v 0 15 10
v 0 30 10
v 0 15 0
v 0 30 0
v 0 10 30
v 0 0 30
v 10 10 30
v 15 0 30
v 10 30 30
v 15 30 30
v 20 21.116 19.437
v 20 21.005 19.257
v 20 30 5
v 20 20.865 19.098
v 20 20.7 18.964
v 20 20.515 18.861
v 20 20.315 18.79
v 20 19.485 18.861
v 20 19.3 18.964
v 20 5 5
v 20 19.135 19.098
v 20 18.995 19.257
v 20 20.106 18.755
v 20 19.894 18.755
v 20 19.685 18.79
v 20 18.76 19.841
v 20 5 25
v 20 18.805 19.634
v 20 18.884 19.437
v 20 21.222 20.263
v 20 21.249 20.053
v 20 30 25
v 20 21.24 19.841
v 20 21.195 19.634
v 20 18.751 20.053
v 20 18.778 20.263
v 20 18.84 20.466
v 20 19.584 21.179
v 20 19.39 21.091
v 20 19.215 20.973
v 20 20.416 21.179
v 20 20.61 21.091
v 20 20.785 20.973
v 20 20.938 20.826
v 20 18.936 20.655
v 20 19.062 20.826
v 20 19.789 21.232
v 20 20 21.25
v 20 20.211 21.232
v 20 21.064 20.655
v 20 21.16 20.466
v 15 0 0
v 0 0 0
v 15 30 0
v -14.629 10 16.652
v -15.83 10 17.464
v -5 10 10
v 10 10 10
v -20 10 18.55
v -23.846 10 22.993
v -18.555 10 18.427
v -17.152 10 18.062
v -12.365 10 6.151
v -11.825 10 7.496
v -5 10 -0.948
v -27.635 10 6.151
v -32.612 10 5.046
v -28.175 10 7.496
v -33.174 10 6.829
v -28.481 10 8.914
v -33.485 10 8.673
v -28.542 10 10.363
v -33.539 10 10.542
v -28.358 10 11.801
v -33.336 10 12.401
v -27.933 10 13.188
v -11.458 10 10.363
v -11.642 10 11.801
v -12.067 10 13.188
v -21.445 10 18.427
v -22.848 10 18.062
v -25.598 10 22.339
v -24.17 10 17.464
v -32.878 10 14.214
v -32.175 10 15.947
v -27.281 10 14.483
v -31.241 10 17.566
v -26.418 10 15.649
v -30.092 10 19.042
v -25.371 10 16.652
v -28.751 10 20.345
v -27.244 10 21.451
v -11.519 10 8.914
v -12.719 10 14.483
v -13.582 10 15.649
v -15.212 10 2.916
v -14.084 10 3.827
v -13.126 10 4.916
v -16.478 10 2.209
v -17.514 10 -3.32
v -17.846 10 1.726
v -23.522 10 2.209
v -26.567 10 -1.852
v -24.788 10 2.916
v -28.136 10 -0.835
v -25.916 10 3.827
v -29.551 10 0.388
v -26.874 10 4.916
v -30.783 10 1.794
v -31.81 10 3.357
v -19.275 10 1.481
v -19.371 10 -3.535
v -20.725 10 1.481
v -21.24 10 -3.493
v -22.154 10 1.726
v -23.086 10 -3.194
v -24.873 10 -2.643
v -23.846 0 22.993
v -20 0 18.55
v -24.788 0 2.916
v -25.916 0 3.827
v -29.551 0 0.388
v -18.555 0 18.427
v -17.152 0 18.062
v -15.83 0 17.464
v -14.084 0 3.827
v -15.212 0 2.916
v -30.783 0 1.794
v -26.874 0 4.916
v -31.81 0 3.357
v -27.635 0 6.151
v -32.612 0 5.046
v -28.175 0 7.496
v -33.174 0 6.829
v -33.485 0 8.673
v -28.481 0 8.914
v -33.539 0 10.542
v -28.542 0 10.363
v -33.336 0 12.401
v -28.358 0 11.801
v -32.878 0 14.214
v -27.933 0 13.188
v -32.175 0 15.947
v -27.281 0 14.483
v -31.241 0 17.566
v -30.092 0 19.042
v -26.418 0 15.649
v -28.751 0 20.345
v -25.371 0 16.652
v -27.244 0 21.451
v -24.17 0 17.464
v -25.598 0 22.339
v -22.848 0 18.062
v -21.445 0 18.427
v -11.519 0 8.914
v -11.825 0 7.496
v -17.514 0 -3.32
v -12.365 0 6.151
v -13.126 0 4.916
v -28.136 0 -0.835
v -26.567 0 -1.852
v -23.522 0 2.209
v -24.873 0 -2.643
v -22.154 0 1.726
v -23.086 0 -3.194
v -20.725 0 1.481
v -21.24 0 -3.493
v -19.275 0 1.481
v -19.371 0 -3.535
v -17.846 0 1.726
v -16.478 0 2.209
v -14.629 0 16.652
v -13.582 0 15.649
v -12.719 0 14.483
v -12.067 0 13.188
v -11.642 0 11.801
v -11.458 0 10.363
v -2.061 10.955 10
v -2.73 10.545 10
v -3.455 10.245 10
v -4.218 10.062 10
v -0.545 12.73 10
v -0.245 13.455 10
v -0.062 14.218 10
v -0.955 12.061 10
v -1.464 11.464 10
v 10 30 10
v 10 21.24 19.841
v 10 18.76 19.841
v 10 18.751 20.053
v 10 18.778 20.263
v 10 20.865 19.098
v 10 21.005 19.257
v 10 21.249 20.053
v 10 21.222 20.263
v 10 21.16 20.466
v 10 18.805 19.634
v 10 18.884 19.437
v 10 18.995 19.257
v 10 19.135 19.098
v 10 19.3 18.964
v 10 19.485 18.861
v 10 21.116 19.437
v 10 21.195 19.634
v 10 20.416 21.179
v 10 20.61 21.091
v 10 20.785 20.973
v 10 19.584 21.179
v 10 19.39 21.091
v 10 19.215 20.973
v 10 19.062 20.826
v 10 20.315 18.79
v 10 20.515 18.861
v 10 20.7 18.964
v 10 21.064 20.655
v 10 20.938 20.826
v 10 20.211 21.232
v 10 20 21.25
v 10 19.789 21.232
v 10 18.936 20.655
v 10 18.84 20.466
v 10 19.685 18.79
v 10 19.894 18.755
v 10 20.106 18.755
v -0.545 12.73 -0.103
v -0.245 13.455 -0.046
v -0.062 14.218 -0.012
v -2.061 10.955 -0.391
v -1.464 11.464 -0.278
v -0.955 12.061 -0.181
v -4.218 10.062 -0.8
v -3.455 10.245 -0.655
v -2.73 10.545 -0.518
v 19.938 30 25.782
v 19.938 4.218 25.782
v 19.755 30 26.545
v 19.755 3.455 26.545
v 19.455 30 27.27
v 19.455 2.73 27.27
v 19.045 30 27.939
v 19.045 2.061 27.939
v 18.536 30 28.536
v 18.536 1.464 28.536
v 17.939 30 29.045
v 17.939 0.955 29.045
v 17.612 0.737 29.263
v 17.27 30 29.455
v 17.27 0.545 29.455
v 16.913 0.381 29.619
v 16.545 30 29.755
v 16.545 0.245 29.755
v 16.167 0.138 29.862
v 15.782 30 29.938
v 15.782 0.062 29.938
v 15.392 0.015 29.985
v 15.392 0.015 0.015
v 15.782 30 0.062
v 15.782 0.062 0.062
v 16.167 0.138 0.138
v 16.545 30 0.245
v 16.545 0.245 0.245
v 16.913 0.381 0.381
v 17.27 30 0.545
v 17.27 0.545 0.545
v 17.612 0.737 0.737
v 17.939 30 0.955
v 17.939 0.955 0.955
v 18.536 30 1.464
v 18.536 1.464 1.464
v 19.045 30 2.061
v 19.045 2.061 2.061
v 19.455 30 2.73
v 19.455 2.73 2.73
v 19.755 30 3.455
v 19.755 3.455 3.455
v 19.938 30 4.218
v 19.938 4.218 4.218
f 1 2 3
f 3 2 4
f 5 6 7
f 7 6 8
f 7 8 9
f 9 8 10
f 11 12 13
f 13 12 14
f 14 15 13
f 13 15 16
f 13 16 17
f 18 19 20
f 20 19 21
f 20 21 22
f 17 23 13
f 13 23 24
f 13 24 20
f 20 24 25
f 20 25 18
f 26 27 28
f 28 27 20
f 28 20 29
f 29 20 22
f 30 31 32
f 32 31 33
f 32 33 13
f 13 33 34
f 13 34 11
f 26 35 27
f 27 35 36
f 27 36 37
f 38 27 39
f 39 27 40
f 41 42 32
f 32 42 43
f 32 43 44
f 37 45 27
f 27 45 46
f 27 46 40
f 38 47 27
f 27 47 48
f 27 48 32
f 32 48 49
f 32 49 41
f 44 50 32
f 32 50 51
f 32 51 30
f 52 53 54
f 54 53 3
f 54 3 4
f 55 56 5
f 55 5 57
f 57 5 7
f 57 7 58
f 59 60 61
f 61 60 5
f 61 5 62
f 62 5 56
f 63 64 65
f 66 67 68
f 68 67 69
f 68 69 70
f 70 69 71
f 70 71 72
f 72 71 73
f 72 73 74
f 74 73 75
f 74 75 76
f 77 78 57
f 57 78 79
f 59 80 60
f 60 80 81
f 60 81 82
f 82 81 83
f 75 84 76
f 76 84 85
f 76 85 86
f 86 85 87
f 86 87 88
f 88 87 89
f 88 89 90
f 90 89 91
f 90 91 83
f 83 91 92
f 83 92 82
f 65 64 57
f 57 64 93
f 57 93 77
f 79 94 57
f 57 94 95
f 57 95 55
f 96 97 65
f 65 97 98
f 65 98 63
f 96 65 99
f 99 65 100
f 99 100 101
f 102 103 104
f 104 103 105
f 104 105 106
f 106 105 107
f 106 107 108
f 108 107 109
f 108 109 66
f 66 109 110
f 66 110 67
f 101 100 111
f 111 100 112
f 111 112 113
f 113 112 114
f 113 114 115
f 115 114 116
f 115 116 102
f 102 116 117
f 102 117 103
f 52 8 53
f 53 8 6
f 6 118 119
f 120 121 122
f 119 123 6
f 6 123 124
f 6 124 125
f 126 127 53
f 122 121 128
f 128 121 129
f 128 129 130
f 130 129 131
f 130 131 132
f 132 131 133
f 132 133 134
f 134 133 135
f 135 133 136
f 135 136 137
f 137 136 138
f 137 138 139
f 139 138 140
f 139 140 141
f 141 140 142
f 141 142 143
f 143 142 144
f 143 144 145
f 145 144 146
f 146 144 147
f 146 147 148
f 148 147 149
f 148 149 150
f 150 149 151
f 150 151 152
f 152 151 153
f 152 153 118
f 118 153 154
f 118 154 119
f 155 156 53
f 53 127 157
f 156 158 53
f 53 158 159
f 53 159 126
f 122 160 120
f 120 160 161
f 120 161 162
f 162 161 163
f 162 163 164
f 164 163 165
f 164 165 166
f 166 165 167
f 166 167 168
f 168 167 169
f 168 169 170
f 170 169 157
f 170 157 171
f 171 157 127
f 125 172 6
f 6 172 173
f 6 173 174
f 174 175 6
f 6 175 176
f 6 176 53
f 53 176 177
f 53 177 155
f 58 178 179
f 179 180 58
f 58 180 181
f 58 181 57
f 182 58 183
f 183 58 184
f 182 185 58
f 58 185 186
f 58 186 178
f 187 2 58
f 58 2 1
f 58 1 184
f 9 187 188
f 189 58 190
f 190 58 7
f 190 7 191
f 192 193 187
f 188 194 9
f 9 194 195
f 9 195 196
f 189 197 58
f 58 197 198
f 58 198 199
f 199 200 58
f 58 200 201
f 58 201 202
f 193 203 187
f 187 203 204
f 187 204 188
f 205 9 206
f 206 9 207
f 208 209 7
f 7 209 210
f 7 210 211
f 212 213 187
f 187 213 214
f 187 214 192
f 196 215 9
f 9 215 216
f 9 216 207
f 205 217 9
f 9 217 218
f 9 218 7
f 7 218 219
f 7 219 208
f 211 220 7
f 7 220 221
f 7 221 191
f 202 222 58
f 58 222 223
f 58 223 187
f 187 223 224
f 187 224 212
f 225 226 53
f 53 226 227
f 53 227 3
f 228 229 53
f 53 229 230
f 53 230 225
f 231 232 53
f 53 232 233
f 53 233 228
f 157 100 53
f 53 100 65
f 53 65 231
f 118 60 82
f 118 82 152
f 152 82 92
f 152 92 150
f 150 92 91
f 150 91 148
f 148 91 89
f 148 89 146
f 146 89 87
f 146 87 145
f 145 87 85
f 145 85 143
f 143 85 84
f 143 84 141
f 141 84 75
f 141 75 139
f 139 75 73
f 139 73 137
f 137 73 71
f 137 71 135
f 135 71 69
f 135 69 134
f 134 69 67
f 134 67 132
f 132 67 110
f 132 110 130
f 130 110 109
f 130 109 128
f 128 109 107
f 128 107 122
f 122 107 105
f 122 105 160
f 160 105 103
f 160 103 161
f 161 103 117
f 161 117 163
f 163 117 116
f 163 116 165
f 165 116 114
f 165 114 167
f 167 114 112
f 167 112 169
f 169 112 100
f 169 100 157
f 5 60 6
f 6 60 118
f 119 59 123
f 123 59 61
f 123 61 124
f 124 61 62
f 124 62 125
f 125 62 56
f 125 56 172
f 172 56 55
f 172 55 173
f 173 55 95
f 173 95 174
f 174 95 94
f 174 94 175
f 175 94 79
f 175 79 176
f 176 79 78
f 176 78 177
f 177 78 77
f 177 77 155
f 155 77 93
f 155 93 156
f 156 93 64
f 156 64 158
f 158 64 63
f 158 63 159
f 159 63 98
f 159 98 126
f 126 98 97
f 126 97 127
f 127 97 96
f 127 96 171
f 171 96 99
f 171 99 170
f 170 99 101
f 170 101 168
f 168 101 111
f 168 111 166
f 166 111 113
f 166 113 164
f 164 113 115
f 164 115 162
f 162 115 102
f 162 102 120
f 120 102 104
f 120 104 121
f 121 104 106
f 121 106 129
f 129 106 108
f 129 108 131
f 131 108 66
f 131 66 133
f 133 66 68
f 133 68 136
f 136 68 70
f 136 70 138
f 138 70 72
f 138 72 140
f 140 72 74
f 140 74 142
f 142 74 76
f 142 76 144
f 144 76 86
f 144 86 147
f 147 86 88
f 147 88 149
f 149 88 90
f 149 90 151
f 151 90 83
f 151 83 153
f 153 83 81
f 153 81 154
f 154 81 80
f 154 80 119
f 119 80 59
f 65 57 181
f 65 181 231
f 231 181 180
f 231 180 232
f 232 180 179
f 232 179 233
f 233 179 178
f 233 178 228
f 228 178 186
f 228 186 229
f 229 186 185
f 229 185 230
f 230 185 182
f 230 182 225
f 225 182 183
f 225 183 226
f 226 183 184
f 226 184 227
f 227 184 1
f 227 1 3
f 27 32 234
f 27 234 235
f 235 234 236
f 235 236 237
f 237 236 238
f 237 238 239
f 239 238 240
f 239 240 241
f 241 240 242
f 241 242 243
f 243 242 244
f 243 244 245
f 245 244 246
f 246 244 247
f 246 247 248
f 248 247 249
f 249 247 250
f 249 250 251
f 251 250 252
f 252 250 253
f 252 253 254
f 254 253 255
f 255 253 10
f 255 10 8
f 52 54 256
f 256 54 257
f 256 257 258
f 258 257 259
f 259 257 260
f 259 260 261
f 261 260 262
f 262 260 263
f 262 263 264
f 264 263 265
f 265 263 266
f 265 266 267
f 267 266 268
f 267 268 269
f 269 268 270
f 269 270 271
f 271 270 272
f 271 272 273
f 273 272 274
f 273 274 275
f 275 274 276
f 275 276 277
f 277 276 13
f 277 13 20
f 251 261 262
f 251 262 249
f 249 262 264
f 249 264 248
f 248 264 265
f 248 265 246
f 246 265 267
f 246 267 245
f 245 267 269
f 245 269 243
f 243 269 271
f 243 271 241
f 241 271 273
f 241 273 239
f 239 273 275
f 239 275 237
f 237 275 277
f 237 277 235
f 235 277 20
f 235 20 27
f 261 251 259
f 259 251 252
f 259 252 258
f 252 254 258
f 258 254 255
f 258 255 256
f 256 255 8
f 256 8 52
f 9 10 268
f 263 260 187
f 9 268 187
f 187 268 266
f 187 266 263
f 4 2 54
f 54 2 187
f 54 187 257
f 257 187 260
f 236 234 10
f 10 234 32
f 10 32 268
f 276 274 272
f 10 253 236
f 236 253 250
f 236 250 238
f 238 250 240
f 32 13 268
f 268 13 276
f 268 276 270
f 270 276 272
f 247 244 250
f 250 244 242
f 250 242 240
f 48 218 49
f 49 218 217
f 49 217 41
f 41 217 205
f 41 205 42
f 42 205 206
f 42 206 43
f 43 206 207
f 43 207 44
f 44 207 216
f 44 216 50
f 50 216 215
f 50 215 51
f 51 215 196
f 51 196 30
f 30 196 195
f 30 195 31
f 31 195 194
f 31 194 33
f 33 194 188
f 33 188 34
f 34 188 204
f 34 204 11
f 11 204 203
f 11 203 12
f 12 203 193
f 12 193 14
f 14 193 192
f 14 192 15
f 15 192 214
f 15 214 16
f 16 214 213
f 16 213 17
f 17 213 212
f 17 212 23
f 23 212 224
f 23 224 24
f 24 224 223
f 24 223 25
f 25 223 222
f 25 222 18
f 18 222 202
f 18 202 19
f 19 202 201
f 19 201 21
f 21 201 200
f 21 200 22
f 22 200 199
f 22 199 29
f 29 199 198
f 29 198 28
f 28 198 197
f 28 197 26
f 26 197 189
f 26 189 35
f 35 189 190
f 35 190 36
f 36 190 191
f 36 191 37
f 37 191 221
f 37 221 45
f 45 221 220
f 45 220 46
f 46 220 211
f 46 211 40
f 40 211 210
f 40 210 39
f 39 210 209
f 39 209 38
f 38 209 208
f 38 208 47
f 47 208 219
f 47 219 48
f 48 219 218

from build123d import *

# Parameters (mm, degrees)
SKETCH1_W           = 20
SKETCH1_H           = 30
BOSS_EXTRUDE1_DEPTH = 10
BOSS_EXTRUDE2_DEPTH = 10
SKETCH4_R           = 8.55
BOSS_EXTRUDE3_DEPTH = 10
FILLET1_R           = 5
BOSS_EXTRUDE4_DEPTH = 10
SKETCH6_R           = 1.25
CUT_EXTRUDE1_DEPTH  = 10


with BuildPart() as part:
    # Sketch1 → Boss-Extrude1 (new body)
    with BuildSketch(Plane(origin=(0, 0, 0), x_dir=(1, 0, 0), z_dir=(0, 1, 0))):
        with Locations((10, -15)):
            Rectangle(SKETCH1_W, SKETCH1_H)
    extrude(amount=BOSS_EXTRUDE1_DEPTH)

    # Sketch2 → Boss-Extrude2 (add)
    with BuildSketch(Plane(origin=(0, 10, 0), x_dir=(1, 0, 0), z_dir=(0, 1, 0))):
        Polygon((0, 0), (0, -10), (10, -10), (10, -30), (20, -30), (20, 0), align=None)
    extrude(amount=BOSS_EXTRUDE2_DEPTH)

    # Sketch4 → Boss-Extrude3 (add)
    with BuildSketch(Plane(origin=(0, 10, 0), x_dir=(1, 0, 0), z_dir=(0, 1, 0))):
        with BuildLine():
            Line((0, 0), (-17.51372228, 3.319944561))
            ThreePointArc((-17.51372228, 3.319944561), (-33.173842605, -6.829452566), (-23.846362973, -22.992612973))
            Line((-23.846362973, -22.992612973), (0, -30))
            Line((0, -30), (0, 0))
        make_face()
        with Locations(Location((-20, -10, 0), (0, 0, 270))):
            Circle(SKETCH4_R, mode=Mode.SUBTRACT)
    extrude(amount=-BOSS_EXTRUDE3_DEPTH)

    # Fillet1
    fillet1_edges = [part.edges().sort_by_distance(p)[0] for p in [
        (0, 10, 5),
        (20, 0, 15),
        (20, 10, 0),
        (20, 10, 30),
    ]]
    fillet(fillet1_edges, radius=FILLET1_R)

    # Sketch5 → Boss-Extrude4 (add)
    with BuildSketch(Plane(origin=(0, 20, 0), x_dir=(1, 0, 0), z_dir=(0, 1, 0))):
        with BuildLine():
            Line((10, -30), (15, -30))
            ThreePointArc((15, -30), (18.535533906, -28.535533906), (20, -25))
            Line((20, -25), (20, -5))
            ThreePointArc((20, -5), (18.535533906, -1.464466094), (15, 0))
            Line((15, 0), (0, 0))
            Line((0, 0), (0, -10))
            Line((0, -10), (10, -10))
            Line((10, -10), (10, -30))
        make_face()
    extrude(amount=BOSS_EXTRUDE4_DEPTH)

    # Sketch6 → Cut-Extrude1 (cut)
    with BuildSketch(Plane.ZY.offset(-10)):
        with Locations((20, 20)):
            Circle(SKETCH6_R)
    extrude(amount=-CUT_EXTRUDE1_DEPTH, mode=Mode.SUBTRACT)


solid = part.part
